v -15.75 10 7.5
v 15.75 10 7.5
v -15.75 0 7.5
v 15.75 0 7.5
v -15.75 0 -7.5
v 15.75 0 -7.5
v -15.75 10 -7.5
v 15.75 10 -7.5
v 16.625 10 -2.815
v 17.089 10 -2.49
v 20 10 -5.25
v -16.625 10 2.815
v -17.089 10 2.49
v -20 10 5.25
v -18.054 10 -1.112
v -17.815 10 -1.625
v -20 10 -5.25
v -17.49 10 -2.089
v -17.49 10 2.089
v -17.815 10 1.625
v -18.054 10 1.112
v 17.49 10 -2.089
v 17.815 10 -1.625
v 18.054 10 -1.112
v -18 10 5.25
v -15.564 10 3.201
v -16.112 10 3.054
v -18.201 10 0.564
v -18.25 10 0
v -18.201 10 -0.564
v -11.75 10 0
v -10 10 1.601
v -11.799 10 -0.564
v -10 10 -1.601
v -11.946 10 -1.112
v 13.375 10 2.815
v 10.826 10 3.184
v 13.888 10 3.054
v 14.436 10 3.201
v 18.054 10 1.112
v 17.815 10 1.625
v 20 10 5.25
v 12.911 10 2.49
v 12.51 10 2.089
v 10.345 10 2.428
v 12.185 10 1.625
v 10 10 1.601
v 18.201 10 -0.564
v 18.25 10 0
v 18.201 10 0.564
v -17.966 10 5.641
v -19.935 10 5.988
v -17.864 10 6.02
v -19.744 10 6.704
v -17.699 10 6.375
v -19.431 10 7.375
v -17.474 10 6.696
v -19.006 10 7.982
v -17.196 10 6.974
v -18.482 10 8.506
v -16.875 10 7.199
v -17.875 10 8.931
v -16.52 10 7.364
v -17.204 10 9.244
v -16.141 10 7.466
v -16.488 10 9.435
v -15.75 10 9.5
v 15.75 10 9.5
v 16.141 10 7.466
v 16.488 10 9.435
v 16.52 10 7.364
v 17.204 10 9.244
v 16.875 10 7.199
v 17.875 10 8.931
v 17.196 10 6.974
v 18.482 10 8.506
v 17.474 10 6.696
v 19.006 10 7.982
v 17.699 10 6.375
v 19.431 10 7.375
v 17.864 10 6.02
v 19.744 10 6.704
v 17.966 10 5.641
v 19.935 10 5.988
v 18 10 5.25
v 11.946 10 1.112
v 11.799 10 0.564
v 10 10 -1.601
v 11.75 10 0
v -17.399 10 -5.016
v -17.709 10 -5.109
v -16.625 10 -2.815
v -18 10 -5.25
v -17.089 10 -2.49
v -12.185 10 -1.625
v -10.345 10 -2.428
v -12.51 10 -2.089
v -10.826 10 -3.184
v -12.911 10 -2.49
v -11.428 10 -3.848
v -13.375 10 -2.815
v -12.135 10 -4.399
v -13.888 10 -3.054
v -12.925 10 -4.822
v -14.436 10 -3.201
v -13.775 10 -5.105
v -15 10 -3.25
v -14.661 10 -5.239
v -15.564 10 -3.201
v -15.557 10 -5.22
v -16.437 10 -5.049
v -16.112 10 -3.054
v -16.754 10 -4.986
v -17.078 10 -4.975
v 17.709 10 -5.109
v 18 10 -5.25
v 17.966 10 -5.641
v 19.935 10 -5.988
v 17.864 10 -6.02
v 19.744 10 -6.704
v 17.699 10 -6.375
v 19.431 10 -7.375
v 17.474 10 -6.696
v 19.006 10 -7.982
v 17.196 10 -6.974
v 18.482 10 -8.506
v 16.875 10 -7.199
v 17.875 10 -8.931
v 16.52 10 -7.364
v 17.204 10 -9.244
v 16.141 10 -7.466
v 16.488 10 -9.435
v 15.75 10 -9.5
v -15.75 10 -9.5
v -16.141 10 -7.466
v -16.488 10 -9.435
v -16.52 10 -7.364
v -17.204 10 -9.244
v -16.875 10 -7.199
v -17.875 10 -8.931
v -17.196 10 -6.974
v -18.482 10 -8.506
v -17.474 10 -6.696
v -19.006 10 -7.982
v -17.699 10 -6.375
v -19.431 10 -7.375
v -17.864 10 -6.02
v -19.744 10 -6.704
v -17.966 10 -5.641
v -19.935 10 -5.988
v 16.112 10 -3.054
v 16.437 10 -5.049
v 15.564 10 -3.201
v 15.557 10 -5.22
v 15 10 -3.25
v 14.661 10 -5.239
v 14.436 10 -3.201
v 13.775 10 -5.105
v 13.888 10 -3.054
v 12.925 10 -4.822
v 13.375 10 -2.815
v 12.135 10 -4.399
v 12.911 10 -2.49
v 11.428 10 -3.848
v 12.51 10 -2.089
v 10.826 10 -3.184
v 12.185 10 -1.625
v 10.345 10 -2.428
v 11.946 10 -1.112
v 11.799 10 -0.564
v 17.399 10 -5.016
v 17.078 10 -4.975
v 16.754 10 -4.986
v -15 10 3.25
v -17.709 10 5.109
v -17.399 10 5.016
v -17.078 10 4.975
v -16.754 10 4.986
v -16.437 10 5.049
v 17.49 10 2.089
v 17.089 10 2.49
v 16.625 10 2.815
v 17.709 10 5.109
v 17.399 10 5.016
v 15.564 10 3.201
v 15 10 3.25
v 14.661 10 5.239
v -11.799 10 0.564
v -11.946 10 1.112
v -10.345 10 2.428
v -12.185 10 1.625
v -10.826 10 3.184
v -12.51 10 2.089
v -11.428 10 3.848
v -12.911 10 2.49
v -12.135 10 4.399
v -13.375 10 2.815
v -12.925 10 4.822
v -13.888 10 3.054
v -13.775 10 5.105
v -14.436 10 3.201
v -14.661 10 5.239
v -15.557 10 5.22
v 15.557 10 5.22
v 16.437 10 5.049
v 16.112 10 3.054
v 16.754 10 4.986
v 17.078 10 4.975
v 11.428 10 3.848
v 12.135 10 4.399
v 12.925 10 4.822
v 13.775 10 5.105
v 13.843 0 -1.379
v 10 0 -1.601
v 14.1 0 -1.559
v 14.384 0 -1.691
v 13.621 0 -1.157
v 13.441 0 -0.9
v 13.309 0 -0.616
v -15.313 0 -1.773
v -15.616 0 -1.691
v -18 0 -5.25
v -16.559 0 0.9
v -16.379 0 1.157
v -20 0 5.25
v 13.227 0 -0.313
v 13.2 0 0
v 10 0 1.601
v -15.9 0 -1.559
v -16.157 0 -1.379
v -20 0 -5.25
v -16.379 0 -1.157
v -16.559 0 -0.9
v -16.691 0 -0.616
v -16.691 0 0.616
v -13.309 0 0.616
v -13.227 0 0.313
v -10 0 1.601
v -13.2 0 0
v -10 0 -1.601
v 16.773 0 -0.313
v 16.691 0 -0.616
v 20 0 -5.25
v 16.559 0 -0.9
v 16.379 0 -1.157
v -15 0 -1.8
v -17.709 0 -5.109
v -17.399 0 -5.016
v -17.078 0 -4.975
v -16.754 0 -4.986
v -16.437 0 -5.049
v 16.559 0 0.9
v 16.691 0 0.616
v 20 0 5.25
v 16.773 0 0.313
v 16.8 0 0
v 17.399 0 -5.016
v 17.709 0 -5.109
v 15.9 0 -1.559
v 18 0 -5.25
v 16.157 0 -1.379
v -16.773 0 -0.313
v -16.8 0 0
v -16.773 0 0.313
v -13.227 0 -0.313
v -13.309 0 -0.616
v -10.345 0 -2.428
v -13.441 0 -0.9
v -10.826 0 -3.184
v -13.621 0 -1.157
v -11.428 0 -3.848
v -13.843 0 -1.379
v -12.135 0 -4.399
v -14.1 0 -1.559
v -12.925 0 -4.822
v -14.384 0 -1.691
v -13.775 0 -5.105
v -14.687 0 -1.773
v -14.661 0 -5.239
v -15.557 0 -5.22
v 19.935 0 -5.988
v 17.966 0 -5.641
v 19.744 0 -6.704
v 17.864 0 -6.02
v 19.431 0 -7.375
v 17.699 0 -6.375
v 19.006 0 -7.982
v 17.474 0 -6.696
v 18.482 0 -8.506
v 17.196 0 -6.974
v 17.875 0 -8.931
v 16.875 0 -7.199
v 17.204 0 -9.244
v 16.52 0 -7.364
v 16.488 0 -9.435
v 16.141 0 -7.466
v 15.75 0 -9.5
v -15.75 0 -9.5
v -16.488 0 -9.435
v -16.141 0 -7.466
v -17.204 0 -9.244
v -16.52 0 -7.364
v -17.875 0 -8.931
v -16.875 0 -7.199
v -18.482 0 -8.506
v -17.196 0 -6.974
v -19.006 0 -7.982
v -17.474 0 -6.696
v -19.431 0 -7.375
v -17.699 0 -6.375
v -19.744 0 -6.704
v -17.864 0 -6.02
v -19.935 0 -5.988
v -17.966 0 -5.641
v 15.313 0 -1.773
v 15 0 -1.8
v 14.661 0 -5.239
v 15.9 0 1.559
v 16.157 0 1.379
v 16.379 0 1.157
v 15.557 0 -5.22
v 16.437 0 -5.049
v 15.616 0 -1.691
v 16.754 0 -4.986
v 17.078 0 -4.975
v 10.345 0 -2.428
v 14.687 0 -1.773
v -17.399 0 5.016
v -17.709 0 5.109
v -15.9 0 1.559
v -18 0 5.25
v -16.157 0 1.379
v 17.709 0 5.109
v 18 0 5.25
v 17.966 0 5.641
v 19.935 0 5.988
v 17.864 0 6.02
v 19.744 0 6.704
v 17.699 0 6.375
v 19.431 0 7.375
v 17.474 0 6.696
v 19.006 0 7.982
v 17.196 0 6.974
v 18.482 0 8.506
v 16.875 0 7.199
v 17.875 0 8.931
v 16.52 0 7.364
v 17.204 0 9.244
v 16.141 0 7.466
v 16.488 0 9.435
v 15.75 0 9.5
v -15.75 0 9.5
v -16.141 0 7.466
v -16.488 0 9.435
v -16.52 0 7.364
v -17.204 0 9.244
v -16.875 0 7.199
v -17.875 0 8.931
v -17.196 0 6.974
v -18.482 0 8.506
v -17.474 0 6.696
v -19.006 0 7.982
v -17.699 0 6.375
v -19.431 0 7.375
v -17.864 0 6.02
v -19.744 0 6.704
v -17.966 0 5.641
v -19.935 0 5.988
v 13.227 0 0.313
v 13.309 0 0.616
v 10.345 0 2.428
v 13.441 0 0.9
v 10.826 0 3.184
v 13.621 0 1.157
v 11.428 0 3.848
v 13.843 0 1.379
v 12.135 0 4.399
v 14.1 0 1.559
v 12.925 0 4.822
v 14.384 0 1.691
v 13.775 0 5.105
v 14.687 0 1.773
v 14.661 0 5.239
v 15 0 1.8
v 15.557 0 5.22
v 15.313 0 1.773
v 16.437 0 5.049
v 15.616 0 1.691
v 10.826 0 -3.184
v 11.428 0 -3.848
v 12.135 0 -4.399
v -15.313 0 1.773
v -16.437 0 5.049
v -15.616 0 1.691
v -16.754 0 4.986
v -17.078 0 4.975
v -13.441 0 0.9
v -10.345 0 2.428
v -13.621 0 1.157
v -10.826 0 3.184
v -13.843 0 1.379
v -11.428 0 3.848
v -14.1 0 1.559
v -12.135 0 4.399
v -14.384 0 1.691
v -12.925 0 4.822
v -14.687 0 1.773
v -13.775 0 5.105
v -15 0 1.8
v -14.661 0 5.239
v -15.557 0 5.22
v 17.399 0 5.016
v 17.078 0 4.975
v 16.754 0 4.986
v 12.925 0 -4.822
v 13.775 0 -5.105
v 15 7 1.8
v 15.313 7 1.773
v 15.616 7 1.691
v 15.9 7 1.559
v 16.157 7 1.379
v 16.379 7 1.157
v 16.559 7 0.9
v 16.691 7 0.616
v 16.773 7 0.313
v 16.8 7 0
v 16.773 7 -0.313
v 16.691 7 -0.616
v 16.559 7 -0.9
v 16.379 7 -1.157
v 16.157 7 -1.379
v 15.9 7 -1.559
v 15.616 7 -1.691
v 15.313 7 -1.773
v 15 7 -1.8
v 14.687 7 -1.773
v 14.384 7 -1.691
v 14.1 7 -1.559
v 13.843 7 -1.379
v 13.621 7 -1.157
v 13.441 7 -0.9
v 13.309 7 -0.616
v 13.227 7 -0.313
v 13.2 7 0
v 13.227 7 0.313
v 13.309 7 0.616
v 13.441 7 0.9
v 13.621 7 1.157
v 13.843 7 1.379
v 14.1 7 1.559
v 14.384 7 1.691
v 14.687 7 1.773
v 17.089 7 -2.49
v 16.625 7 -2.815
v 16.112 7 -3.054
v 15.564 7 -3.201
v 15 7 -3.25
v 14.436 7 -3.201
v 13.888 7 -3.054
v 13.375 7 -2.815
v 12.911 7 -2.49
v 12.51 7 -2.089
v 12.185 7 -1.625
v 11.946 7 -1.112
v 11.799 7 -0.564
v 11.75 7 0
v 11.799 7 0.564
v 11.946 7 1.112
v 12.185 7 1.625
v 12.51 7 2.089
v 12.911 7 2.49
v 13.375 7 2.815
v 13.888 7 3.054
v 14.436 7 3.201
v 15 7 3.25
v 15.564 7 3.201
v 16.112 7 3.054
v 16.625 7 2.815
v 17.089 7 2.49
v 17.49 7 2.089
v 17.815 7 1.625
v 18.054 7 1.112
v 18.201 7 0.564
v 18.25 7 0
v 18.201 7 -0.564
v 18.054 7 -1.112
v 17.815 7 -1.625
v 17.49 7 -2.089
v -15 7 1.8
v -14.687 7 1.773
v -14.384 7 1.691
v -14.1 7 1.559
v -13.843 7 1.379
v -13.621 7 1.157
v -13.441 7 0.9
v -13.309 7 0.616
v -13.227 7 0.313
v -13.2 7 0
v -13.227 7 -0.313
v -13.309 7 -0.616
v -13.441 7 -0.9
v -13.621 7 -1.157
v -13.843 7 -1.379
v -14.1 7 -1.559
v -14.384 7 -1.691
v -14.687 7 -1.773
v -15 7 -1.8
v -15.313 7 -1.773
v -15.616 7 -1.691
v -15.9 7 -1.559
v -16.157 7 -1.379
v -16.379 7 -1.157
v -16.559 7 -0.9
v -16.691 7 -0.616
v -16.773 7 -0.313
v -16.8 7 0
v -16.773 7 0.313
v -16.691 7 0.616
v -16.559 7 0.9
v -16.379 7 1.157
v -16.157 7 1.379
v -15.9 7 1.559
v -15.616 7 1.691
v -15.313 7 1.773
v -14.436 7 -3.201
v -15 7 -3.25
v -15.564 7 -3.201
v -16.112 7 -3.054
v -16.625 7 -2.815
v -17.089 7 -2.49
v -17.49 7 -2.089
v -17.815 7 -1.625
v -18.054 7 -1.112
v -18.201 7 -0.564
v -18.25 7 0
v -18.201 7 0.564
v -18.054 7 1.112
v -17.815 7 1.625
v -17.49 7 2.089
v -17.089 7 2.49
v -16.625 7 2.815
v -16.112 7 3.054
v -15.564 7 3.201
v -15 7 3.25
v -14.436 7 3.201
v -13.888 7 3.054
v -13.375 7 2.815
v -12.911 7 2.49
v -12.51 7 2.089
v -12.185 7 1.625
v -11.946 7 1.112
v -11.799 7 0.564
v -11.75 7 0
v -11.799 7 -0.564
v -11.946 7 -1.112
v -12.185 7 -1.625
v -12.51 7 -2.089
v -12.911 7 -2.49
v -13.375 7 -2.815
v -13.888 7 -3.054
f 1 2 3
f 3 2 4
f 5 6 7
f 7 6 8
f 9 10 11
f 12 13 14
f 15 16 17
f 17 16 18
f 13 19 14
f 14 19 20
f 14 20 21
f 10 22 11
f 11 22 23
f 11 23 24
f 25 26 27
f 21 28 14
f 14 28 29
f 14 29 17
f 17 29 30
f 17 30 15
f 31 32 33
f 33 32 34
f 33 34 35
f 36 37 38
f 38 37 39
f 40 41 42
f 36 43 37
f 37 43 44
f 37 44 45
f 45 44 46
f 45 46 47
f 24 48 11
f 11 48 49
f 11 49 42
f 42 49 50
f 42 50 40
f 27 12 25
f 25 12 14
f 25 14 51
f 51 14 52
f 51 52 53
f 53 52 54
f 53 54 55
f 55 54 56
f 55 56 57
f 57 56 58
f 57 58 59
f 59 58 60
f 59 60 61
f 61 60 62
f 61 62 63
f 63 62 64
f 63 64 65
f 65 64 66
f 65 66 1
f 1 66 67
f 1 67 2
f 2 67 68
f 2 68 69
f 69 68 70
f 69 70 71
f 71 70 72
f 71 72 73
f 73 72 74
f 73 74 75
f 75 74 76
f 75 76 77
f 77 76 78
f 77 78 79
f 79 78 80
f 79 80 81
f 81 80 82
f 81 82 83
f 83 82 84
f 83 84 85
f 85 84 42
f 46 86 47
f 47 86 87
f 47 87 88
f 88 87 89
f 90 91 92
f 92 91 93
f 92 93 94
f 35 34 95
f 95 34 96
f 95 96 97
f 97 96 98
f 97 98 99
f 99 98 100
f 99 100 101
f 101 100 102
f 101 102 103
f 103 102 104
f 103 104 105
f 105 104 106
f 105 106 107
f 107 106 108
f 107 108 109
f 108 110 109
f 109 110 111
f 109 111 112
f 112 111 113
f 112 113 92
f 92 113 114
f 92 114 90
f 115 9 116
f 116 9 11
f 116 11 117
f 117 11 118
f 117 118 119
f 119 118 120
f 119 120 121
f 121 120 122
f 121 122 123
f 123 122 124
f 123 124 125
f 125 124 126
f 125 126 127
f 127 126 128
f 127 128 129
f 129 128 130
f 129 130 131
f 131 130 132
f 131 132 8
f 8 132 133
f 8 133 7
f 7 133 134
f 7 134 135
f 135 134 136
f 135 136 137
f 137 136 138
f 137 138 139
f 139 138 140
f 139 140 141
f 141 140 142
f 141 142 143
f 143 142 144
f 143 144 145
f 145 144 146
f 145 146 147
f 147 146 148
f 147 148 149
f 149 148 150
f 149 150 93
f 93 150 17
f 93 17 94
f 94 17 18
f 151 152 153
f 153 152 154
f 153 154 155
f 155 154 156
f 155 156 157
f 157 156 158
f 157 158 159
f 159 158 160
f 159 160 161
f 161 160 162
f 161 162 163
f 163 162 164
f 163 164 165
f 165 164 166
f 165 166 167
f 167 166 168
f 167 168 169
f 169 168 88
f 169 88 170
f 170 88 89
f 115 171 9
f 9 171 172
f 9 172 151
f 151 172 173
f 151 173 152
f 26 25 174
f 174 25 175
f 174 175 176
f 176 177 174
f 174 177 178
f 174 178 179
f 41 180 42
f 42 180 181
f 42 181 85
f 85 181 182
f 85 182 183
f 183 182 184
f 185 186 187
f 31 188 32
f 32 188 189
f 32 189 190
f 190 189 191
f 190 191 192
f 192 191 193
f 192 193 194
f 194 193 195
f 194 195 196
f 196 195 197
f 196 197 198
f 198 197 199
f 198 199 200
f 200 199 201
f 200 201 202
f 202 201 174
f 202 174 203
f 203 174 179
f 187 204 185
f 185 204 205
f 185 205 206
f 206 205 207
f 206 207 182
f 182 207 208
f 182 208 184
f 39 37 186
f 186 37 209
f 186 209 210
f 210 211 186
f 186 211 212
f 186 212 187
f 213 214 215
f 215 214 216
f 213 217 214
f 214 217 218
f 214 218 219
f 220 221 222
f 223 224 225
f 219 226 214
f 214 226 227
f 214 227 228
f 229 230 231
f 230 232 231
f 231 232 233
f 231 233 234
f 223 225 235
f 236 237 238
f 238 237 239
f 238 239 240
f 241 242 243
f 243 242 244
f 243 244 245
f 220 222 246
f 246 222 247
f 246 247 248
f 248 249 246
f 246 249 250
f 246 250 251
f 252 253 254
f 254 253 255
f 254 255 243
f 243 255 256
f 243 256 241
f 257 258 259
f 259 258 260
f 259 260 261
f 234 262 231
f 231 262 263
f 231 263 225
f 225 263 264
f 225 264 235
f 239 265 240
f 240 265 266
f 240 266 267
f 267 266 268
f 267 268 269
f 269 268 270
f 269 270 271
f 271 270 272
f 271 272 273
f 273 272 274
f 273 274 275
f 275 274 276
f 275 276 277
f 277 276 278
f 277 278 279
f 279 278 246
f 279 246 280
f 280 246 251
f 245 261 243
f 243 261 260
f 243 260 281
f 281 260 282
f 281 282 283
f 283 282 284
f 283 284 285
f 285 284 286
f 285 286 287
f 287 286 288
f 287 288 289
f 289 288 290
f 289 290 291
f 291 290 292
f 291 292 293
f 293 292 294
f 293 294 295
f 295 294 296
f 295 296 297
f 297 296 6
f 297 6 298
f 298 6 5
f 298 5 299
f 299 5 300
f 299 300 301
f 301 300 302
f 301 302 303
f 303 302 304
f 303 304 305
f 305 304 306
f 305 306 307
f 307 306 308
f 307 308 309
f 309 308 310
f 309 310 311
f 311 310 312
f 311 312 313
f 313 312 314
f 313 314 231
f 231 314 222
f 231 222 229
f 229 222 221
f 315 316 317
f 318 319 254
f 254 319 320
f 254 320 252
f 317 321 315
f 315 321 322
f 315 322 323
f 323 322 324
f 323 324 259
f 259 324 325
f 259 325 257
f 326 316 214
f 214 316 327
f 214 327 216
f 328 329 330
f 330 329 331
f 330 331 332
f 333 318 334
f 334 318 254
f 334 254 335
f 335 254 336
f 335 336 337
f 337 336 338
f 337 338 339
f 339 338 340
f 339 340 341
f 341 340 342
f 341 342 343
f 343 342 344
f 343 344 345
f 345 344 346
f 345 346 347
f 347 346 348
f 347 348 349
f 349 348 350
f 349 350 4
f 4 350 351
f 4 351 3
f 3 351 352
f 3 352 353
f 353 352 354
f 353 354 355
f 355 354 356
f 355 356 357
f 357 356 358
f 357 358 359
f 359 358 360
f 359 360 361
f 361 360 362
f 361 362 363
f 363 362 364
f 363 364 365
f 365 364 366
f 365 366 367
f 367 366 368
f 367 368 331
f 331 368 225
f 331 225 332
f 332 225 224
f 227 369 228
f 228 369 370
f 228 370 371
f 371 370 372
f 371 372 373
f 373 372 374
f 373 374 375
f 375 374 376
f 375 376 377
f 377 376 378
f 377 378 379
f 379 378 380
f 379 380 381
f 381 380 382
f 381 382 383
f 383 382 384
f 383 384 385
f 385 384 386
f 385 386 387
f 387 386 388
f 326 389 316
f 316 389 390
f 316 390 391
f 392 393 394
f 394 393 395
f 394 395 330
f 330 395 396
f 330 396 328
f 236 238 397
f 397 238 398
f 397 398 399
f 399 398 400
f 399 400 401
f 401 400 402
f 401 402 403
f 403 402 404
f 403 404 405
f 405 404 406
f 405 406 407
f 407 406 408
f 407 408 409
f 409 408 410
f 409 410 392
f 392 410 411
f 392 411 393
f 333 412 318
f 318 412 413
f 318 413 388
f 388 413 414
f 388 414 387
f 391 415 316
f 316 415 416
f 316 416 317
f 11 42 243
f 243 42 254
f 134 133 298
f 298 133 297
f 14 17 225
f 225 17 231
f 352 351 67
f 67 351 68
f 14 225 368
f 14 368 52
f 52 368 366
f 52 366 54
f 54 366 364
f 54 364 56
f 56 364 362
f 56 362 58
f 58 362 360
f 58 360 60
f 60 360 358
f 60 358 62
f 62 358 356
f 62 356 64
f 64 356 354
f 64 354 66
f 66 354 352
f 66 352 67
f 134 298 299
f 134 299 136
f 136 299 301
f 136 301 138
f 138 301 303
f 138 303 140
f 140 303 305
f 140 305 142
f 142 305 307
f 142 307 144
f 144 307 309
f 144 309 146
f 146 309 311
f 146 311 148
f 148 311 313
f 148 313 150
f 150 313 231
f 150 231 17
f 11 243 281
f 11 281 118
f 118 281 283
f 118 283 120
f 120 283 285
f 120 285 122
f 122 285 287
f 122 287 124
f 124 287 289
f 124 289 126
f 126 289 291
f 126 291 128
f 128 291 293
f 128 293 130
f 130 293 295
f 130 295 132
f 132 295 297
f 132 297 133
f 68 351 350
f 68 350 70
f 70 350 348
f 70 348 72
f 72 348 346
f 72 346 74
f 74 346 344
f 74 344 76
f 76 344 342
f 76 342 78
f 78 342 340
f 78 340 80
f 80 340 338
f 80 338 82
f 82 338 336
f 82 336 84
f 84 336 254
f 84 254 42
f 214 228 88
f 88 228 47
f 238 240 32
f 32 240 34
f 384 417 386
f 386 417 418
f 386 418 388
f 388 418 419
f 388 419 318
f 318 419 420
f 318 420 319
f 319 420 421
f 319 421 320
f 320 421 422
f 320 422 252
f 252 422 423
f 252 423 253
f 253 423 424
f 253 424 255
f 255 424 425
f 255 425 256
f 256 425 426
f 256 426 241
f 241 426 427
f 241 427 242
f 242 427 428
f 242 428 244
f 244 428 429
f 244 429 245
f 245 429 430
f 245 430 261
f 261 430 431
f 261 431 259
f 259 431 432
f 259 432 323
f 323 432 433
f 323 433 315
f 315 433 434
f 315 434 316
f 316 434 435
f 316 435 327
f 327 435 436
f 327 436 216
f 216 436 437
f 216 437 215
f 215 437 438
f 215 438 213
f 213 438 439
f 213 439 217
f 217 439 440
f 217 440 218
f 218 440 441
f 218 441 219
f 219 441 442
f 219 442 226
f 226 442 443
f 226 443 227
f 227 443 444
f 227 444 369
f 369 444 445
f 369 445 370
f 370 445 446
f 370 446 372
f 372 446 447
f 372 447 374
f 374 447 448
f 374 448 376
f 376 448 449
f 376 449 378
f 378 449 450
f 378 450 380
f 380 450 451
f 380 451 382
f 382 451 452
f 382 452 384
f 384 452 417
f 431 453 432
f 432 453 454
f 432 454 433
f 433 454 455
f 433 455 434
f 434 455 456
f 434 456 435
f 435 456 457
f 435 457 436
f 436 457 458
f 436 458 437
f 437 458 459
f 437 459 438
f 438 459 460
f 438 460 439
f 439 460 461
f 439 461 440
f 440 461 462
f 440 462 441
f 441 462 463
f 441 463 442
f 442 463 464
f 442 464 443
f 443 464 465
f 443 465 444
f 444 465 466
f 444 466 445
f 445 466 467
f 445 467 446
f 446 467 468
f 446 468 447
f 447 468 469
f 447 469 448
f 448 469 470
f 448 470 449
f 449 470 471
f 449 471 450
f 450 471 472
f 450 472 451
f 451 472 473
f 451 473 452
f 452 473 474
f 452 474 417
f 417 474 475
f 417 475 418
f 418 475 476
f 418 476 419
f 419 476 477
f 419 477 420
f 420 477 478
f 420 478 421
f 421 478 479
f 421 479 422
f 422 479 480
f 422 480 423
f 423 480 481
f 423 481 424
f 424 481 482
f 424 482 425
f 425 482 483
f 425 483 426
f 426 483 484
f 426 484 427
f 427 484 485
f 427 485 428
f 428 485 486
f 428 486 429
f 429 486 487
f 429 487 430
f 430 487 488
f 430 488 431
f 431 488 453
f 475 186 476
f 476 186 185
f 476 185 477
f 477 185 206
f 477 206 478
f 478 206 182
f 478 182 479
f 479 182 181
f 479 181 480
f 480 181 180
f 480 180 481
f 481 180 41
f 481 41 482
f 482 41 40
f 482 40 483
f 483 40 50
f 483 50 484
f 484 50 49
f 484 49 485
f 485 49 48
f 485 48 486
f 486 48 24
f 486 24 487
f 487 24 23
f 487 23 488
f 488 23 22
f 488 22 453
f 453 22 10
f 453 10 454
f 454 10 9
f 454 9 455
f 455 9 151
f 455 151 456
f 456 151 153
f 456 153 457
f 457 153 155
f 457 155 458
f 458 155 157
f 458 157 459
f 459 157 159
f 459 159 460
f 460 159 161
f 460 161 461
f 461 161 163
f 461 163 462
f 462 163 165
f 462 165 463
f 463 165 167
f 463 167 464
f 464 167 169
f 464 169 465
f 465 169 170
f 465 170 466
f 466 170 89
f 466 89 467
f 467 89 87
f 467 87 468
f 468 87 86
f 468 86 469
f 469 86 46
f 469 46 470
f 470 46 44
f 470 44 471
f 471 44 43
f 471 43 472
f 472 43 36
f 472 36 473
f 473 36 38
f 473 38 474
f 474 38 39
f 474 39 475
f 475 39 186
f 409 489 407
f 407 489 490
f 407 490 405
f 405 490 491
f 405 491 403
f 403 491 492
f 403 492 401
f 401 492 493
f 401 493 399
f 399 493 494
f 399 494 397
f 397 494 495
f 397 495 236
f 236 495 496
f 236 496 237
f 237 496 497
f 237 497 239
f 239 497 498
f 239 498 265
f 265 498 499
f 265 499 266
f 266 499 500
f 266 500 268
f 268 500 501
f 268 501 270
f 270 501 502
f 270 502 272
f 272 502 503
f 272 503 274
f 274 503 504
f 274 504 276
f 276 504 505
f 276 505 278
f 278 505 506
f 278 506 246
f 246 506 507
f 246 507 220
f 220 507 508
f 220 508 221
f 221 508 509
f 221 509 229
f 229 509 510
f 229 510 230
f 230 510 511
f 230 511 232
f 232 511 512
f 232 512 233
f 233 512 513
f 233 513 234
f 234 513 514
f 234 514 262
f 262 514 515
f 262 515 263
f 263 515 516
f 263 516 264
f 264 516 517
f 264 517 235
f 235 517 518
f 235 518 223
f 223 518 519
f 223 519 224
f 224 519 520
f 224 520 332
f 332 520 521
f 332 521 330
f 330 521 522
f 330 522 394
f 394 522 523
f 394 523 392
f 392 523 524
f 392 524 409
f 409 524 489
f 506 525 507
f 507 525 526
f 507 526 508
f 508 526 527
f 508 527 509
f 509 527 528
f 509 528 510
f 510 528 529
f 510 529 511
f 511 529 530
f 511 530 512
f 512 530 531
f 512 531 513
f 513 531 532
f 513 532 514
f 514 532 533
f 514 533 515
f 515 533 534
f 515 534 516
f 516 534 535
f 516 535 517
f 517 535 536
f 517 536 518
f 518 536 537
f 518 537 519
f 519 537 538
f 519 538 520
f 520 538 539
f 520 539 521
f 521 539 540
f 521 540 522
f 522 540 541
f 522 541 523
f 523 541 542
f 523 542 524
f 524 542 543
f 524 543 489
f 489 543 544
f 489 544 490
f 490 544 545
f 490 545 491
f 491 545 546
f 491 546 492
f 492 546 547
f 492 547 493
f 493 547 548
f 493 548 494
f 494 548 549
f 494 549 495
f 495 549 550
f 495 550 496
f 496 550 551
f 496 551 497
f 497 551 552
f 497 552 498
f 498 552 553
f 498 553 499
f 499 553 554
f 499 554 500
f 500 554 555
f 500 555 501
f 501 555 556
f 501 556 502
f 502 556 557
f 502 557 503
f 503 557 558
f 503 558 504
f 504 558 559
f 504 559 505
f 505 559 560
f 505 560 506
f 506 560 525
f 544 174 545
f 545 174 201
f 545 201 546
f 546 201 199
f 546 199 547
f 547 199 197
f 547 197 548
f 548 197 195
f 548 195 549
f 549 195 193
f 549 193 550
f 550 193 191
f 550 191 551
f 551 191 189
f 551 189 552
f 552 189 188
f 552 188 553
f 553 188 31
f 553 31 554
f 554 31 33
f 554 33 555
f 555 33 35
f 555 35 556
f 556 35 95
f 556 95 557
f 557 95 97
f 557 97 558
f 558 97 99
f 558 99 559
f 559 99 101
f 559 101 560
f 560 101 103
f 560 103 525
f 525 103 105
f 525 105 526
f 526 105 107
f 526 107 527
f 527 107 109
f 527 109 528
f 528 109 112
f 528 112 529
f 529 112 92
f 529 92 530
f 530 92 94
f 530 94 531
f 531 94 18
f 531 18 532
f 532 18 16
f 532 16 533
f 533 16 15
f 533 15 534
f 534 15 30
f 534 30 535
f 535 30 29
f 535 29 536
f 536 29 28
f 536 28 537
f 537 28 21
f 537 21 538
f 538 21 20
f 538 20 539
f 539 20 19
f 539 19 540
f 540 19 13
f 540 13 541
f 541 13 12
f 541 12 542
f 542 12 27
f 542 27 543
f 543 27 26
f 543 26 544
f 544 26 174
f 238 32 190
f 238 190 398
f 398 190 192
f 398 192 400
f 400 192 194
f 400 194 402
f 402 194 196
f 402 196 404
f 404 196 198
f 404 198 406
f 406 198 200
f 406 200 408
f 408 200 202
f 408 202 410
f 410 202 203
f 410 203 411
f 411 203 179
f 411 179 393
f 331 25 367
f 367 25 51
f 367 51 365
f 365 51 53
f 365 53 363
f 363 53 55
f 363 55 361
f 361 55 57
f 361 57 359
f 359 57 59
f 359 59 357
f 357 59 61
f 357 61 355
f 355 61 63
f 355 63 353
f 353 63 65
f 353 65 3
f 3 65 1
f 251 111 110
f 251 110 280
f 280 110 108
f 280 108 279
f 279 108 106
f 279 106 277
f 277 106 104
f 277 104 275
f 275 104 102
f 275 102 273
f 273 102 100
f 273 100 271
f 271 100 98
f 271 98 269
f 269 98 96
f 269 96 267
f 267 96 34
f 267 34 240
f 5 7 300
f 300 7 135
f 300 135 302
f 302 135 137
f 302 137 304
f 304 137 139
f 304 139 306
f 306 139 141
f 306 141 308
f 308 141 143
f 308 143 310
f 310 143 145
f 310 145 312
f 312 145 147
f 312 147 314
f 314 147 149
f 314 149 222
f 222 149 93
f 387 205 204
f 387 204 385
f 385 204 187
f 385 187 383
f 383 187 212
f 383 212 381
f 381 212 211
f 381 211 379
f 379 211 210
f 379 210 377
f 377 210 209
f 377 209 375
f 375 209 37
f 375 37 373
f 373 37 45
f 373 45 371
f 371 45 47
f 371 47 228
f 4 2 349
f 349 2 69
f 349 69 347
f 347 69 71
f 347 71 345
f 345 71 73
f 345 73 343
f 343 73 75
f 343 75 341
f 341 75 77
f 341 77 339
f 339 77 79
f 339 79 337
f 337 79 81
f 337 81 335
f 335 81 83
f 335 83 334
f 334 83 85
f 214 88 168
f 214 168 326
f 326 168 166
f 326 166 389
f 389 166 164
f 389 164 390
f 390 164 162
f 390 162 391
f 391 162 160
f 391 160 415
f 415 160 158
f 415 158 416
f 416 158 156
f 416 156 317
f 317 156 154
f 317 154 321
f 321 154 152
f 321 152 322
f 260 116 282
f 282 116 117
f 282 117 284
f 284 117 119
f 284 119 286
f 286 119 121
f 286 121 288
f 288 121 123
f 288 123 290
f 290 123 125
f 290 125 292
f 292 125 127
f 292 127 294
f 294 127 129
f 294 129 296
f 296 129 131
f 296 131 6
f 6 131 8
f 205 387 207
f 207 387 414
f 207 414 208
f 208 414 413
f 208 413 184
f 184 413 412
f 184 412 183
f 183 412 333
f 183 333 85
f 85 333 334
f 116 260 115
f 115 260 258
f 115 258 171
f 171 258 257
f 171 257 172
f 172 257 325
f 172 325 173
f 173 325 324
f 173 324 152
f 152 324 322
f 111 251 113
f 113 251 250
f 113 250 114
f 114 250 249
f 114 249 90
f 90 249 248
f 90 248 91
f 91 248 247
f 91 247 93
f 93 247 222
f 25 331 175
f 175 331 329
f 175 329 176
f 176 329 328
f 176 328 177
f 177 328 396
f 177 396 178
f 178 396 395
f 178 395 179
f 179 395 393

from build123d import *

# Parameters (mm, degrees)
SKETCH1_W                      = 40
SKETCH1_H                      = 19
SKETCH1_W_2                    = 36
SKETCH1_H_2                    = 15
BOSS_EXTRUDE1_DEPTH            = 10
FILLET1_R                      = 4.25
BOSS_EXTRUDE2_START            = 10
BOSS_EXTRUDE2_DEPTH            = 10
CBORE_FOR_M3_SHCS1_D           = 3.6
CBORE_FOR_M3_SHCS1_CBORE_D     = 6.5
CBORE_FOR_M3_SHCS1_CBORE_DEPTH = 3
CUT_EXTRUDE1_DEPTH             = 25.295061227
FILLET2_R                      = 2


with BuildPart() as part:
    # Sketch1 → Boss-Extrude1 (new body)
    with BuildSketch(Plane(origin=(0, 0, 0), x_dir=(1, 0, 0), z_dir=(0, 1, 0))):
        Rectangle(SKETCH1_W, SKETCH1_H)
        Rectangle(SKETCH1_W_2, SKETCH1_H_2, mode=Mode.SUBTRACT)
    extrude(amount=BOSS_EXTRUDE1_DEPTH)

    # Fillet1
    fillet1_edges = [part.edges().sort_by_distance(p)[0] for p in [
        (-18, 5, -7.5),
        (-18, 5, 7.5),
        (18, 5, 7.5),
        (18, 5, -7.5),
        (20, 5, 9.5),
        (-20, 5, 9.5),
        (-20, 5, -9.5),
        (20, 5, -9.5),
    ]]
    fillet(fillet1_edges, radius=FILLET1_R)

    # Sketch2 → Boss-Extrude2 (add)
    with BuildSketch(Plane(origin=(0, 0, 0), x_dir=(1, 0, 0), z_dir=(0, 1, 0)).offset(BOSS_EXTRUDE2_START)):
        with BuildLine():
            Line((18, -3.25), (18, 3.25))
            ThreePointArc((18, 3.25), (16.75520382, 6.25520382), (13.75, 7.5))
            Line((13.75, 7.5), (10, 7.5))
            Line((10, 7.5), (10, -7.5))
            Line((10, -7.5), (13.75, -7.5))
            ThreePointArc((13.75, -7.5), (16.75520382, -6.25520382), (18, -3.25))
        make_face()
        with BuildLine():
            Line((-13.75, -7.5), (-10, -7.5))
            Line((-10, -7.5), (-10, 7.5))
            Line((-10, 7.5), (-13.75, 7.5))
            ThreePointArc((-13.75, 7.5), (-16.75520382, 6.25520382), (-18, 3.25))
            Line((-18, 3.25), (-18, -3.25))
            ThreePointArc((-18, -3.25), (-16.75520382, -6.25520382), (-13.75, -7.5))
        make_face()
    extrude(amount=-BOSS_EXTRUDE2_DEPTH)

    # CBORE for M3 SHCS1 (through all)
    with Locations(Plane(origin=(0, 10, 0), x_dir=(1, 0, 0), z_dir=(0, 1, 0))):
        with Locations((-15, 0), (15, 0)):
            CounterBoreHole(CBORE_FOR_M3_SHCS1_D / 2, CBORE_FOR_M3_SHCS1_CBORE_D / 2, CBORE_FOR_M3_SHCS1_CBORE_DEPTH)

    # Sketch5 → Cut-Extrude1 (cut, through all)
    with BuildSketch(Plane(origin=(0, 10, 0), x_dir=(1, 0, 0), z_dir=(0, 1, 0))):
        with BuildLine():
            Line((15.75, 7.5), (-15.75, 7.5))
            ThreePointArc((-15.75, 7.5), (-17.340990258, 6.840990258), (-18, 5.25))
            Line((-18, 5.25), (-18, 4.308421985))
            ThreePointArc((-18, 4.308421985), (-9.75, 0), (-18, -4.308421985))
            Line((-18, -4.308421985), (-18, -5.25))
            ThreePointArc((-18, -5.25), (-17.340990258, -6.840990258), (-15.75, -7.5))
            Line((-15.75, -7.5), (15.75, -7.5))
            ThreePointArc((15.75, -7.5), (17.340990258, -6.840990258), (18, -5.25))
            Line((18, -5.25), (18, -4.308421985))
            ThreePointArc((18, -4.308421985), (9.75, 0), (18, 4.308421985))
            Line((18, 4.308421985), (18, 5.25))
            ThreePointArc((18, 5.25), (17.340990258, 6.840990258), (15.75, 7.5))
        make_face()
    extrude(amount=-CUT_EXTRUDE1_DEPTH, mode=Mode.SUBTRACT)

    # Fillet2
    # the kernel refuses this fillet: 2 mm, written as the material it adds along each edge
    with BuildSketch(Plane(origin=(18, 10, 4.308421985), x_dir=(-0.9035715432909278, 0, 0.42843723712447174), z_dir=(0, -1, 0)), Plane(origin=(-18, 10, -4.308421985), x_dir=(0.9035715432909261, 0, -0.4284372371244754), z_dir=(0, -1, 0))) as fillet2_piece_1:
        with BuildLine():
            CenterArc((2.059110044, -1.972677796), FILLET2_R, 99.481480479, 46.397181027)
            Line((0.403407083, -0.8507831), (0.370293024, -0.828345206))
            ThreePointArc((0.370293024, -0.828345206), (0.16556068, -0.44252904), (-0.036142862, -0.017137489))
            Line((-0.036142862, -0.017137489), (0.006589152, 0.039453556))
            ThreePointArc((0.006589152, 0.039453556), (0.864826218, -0.031720787), (1.723063284, 0.039453556))
            Line((1.723063284, 0.039453556), (1.729652437, 0))
        make_face()
    extrude(amount=10)
    with BuildSketch(Plane(origin=(18, 10, -4.308421985), x_dir=(0, 0, -1), z_dir=(0, -1, 0)), Plane(origin=(-18, 10, 4.308421985), x_dir=(0, 0, 1), z_dir=(0, -1, 0))) as fillet2_piece_2:
        with BuildLine():
            CenterArc((2.664654938, -1.015384615), FILLET2_R, 149.489762594, 46.397181027)
            Line((0.741047511, -1.562864721), (0.702575363, -1.573814324))
            ThreePointArc((0.702575363, -1.573814324), (0.399185756, -0.767841995), (-0.032826072, -0.022857143))
            Line((-0.032826072, -0.022857143), (0, 0.04))
            ThreePointArc((0, 0.04), (0.470789008, 0.04), (0.907116477, 0.020307692))
            Line((0.907116477, 0.020307692), (0.941578015, 0))
        make_face()
    extrude(amount=10)


solid = part.part
